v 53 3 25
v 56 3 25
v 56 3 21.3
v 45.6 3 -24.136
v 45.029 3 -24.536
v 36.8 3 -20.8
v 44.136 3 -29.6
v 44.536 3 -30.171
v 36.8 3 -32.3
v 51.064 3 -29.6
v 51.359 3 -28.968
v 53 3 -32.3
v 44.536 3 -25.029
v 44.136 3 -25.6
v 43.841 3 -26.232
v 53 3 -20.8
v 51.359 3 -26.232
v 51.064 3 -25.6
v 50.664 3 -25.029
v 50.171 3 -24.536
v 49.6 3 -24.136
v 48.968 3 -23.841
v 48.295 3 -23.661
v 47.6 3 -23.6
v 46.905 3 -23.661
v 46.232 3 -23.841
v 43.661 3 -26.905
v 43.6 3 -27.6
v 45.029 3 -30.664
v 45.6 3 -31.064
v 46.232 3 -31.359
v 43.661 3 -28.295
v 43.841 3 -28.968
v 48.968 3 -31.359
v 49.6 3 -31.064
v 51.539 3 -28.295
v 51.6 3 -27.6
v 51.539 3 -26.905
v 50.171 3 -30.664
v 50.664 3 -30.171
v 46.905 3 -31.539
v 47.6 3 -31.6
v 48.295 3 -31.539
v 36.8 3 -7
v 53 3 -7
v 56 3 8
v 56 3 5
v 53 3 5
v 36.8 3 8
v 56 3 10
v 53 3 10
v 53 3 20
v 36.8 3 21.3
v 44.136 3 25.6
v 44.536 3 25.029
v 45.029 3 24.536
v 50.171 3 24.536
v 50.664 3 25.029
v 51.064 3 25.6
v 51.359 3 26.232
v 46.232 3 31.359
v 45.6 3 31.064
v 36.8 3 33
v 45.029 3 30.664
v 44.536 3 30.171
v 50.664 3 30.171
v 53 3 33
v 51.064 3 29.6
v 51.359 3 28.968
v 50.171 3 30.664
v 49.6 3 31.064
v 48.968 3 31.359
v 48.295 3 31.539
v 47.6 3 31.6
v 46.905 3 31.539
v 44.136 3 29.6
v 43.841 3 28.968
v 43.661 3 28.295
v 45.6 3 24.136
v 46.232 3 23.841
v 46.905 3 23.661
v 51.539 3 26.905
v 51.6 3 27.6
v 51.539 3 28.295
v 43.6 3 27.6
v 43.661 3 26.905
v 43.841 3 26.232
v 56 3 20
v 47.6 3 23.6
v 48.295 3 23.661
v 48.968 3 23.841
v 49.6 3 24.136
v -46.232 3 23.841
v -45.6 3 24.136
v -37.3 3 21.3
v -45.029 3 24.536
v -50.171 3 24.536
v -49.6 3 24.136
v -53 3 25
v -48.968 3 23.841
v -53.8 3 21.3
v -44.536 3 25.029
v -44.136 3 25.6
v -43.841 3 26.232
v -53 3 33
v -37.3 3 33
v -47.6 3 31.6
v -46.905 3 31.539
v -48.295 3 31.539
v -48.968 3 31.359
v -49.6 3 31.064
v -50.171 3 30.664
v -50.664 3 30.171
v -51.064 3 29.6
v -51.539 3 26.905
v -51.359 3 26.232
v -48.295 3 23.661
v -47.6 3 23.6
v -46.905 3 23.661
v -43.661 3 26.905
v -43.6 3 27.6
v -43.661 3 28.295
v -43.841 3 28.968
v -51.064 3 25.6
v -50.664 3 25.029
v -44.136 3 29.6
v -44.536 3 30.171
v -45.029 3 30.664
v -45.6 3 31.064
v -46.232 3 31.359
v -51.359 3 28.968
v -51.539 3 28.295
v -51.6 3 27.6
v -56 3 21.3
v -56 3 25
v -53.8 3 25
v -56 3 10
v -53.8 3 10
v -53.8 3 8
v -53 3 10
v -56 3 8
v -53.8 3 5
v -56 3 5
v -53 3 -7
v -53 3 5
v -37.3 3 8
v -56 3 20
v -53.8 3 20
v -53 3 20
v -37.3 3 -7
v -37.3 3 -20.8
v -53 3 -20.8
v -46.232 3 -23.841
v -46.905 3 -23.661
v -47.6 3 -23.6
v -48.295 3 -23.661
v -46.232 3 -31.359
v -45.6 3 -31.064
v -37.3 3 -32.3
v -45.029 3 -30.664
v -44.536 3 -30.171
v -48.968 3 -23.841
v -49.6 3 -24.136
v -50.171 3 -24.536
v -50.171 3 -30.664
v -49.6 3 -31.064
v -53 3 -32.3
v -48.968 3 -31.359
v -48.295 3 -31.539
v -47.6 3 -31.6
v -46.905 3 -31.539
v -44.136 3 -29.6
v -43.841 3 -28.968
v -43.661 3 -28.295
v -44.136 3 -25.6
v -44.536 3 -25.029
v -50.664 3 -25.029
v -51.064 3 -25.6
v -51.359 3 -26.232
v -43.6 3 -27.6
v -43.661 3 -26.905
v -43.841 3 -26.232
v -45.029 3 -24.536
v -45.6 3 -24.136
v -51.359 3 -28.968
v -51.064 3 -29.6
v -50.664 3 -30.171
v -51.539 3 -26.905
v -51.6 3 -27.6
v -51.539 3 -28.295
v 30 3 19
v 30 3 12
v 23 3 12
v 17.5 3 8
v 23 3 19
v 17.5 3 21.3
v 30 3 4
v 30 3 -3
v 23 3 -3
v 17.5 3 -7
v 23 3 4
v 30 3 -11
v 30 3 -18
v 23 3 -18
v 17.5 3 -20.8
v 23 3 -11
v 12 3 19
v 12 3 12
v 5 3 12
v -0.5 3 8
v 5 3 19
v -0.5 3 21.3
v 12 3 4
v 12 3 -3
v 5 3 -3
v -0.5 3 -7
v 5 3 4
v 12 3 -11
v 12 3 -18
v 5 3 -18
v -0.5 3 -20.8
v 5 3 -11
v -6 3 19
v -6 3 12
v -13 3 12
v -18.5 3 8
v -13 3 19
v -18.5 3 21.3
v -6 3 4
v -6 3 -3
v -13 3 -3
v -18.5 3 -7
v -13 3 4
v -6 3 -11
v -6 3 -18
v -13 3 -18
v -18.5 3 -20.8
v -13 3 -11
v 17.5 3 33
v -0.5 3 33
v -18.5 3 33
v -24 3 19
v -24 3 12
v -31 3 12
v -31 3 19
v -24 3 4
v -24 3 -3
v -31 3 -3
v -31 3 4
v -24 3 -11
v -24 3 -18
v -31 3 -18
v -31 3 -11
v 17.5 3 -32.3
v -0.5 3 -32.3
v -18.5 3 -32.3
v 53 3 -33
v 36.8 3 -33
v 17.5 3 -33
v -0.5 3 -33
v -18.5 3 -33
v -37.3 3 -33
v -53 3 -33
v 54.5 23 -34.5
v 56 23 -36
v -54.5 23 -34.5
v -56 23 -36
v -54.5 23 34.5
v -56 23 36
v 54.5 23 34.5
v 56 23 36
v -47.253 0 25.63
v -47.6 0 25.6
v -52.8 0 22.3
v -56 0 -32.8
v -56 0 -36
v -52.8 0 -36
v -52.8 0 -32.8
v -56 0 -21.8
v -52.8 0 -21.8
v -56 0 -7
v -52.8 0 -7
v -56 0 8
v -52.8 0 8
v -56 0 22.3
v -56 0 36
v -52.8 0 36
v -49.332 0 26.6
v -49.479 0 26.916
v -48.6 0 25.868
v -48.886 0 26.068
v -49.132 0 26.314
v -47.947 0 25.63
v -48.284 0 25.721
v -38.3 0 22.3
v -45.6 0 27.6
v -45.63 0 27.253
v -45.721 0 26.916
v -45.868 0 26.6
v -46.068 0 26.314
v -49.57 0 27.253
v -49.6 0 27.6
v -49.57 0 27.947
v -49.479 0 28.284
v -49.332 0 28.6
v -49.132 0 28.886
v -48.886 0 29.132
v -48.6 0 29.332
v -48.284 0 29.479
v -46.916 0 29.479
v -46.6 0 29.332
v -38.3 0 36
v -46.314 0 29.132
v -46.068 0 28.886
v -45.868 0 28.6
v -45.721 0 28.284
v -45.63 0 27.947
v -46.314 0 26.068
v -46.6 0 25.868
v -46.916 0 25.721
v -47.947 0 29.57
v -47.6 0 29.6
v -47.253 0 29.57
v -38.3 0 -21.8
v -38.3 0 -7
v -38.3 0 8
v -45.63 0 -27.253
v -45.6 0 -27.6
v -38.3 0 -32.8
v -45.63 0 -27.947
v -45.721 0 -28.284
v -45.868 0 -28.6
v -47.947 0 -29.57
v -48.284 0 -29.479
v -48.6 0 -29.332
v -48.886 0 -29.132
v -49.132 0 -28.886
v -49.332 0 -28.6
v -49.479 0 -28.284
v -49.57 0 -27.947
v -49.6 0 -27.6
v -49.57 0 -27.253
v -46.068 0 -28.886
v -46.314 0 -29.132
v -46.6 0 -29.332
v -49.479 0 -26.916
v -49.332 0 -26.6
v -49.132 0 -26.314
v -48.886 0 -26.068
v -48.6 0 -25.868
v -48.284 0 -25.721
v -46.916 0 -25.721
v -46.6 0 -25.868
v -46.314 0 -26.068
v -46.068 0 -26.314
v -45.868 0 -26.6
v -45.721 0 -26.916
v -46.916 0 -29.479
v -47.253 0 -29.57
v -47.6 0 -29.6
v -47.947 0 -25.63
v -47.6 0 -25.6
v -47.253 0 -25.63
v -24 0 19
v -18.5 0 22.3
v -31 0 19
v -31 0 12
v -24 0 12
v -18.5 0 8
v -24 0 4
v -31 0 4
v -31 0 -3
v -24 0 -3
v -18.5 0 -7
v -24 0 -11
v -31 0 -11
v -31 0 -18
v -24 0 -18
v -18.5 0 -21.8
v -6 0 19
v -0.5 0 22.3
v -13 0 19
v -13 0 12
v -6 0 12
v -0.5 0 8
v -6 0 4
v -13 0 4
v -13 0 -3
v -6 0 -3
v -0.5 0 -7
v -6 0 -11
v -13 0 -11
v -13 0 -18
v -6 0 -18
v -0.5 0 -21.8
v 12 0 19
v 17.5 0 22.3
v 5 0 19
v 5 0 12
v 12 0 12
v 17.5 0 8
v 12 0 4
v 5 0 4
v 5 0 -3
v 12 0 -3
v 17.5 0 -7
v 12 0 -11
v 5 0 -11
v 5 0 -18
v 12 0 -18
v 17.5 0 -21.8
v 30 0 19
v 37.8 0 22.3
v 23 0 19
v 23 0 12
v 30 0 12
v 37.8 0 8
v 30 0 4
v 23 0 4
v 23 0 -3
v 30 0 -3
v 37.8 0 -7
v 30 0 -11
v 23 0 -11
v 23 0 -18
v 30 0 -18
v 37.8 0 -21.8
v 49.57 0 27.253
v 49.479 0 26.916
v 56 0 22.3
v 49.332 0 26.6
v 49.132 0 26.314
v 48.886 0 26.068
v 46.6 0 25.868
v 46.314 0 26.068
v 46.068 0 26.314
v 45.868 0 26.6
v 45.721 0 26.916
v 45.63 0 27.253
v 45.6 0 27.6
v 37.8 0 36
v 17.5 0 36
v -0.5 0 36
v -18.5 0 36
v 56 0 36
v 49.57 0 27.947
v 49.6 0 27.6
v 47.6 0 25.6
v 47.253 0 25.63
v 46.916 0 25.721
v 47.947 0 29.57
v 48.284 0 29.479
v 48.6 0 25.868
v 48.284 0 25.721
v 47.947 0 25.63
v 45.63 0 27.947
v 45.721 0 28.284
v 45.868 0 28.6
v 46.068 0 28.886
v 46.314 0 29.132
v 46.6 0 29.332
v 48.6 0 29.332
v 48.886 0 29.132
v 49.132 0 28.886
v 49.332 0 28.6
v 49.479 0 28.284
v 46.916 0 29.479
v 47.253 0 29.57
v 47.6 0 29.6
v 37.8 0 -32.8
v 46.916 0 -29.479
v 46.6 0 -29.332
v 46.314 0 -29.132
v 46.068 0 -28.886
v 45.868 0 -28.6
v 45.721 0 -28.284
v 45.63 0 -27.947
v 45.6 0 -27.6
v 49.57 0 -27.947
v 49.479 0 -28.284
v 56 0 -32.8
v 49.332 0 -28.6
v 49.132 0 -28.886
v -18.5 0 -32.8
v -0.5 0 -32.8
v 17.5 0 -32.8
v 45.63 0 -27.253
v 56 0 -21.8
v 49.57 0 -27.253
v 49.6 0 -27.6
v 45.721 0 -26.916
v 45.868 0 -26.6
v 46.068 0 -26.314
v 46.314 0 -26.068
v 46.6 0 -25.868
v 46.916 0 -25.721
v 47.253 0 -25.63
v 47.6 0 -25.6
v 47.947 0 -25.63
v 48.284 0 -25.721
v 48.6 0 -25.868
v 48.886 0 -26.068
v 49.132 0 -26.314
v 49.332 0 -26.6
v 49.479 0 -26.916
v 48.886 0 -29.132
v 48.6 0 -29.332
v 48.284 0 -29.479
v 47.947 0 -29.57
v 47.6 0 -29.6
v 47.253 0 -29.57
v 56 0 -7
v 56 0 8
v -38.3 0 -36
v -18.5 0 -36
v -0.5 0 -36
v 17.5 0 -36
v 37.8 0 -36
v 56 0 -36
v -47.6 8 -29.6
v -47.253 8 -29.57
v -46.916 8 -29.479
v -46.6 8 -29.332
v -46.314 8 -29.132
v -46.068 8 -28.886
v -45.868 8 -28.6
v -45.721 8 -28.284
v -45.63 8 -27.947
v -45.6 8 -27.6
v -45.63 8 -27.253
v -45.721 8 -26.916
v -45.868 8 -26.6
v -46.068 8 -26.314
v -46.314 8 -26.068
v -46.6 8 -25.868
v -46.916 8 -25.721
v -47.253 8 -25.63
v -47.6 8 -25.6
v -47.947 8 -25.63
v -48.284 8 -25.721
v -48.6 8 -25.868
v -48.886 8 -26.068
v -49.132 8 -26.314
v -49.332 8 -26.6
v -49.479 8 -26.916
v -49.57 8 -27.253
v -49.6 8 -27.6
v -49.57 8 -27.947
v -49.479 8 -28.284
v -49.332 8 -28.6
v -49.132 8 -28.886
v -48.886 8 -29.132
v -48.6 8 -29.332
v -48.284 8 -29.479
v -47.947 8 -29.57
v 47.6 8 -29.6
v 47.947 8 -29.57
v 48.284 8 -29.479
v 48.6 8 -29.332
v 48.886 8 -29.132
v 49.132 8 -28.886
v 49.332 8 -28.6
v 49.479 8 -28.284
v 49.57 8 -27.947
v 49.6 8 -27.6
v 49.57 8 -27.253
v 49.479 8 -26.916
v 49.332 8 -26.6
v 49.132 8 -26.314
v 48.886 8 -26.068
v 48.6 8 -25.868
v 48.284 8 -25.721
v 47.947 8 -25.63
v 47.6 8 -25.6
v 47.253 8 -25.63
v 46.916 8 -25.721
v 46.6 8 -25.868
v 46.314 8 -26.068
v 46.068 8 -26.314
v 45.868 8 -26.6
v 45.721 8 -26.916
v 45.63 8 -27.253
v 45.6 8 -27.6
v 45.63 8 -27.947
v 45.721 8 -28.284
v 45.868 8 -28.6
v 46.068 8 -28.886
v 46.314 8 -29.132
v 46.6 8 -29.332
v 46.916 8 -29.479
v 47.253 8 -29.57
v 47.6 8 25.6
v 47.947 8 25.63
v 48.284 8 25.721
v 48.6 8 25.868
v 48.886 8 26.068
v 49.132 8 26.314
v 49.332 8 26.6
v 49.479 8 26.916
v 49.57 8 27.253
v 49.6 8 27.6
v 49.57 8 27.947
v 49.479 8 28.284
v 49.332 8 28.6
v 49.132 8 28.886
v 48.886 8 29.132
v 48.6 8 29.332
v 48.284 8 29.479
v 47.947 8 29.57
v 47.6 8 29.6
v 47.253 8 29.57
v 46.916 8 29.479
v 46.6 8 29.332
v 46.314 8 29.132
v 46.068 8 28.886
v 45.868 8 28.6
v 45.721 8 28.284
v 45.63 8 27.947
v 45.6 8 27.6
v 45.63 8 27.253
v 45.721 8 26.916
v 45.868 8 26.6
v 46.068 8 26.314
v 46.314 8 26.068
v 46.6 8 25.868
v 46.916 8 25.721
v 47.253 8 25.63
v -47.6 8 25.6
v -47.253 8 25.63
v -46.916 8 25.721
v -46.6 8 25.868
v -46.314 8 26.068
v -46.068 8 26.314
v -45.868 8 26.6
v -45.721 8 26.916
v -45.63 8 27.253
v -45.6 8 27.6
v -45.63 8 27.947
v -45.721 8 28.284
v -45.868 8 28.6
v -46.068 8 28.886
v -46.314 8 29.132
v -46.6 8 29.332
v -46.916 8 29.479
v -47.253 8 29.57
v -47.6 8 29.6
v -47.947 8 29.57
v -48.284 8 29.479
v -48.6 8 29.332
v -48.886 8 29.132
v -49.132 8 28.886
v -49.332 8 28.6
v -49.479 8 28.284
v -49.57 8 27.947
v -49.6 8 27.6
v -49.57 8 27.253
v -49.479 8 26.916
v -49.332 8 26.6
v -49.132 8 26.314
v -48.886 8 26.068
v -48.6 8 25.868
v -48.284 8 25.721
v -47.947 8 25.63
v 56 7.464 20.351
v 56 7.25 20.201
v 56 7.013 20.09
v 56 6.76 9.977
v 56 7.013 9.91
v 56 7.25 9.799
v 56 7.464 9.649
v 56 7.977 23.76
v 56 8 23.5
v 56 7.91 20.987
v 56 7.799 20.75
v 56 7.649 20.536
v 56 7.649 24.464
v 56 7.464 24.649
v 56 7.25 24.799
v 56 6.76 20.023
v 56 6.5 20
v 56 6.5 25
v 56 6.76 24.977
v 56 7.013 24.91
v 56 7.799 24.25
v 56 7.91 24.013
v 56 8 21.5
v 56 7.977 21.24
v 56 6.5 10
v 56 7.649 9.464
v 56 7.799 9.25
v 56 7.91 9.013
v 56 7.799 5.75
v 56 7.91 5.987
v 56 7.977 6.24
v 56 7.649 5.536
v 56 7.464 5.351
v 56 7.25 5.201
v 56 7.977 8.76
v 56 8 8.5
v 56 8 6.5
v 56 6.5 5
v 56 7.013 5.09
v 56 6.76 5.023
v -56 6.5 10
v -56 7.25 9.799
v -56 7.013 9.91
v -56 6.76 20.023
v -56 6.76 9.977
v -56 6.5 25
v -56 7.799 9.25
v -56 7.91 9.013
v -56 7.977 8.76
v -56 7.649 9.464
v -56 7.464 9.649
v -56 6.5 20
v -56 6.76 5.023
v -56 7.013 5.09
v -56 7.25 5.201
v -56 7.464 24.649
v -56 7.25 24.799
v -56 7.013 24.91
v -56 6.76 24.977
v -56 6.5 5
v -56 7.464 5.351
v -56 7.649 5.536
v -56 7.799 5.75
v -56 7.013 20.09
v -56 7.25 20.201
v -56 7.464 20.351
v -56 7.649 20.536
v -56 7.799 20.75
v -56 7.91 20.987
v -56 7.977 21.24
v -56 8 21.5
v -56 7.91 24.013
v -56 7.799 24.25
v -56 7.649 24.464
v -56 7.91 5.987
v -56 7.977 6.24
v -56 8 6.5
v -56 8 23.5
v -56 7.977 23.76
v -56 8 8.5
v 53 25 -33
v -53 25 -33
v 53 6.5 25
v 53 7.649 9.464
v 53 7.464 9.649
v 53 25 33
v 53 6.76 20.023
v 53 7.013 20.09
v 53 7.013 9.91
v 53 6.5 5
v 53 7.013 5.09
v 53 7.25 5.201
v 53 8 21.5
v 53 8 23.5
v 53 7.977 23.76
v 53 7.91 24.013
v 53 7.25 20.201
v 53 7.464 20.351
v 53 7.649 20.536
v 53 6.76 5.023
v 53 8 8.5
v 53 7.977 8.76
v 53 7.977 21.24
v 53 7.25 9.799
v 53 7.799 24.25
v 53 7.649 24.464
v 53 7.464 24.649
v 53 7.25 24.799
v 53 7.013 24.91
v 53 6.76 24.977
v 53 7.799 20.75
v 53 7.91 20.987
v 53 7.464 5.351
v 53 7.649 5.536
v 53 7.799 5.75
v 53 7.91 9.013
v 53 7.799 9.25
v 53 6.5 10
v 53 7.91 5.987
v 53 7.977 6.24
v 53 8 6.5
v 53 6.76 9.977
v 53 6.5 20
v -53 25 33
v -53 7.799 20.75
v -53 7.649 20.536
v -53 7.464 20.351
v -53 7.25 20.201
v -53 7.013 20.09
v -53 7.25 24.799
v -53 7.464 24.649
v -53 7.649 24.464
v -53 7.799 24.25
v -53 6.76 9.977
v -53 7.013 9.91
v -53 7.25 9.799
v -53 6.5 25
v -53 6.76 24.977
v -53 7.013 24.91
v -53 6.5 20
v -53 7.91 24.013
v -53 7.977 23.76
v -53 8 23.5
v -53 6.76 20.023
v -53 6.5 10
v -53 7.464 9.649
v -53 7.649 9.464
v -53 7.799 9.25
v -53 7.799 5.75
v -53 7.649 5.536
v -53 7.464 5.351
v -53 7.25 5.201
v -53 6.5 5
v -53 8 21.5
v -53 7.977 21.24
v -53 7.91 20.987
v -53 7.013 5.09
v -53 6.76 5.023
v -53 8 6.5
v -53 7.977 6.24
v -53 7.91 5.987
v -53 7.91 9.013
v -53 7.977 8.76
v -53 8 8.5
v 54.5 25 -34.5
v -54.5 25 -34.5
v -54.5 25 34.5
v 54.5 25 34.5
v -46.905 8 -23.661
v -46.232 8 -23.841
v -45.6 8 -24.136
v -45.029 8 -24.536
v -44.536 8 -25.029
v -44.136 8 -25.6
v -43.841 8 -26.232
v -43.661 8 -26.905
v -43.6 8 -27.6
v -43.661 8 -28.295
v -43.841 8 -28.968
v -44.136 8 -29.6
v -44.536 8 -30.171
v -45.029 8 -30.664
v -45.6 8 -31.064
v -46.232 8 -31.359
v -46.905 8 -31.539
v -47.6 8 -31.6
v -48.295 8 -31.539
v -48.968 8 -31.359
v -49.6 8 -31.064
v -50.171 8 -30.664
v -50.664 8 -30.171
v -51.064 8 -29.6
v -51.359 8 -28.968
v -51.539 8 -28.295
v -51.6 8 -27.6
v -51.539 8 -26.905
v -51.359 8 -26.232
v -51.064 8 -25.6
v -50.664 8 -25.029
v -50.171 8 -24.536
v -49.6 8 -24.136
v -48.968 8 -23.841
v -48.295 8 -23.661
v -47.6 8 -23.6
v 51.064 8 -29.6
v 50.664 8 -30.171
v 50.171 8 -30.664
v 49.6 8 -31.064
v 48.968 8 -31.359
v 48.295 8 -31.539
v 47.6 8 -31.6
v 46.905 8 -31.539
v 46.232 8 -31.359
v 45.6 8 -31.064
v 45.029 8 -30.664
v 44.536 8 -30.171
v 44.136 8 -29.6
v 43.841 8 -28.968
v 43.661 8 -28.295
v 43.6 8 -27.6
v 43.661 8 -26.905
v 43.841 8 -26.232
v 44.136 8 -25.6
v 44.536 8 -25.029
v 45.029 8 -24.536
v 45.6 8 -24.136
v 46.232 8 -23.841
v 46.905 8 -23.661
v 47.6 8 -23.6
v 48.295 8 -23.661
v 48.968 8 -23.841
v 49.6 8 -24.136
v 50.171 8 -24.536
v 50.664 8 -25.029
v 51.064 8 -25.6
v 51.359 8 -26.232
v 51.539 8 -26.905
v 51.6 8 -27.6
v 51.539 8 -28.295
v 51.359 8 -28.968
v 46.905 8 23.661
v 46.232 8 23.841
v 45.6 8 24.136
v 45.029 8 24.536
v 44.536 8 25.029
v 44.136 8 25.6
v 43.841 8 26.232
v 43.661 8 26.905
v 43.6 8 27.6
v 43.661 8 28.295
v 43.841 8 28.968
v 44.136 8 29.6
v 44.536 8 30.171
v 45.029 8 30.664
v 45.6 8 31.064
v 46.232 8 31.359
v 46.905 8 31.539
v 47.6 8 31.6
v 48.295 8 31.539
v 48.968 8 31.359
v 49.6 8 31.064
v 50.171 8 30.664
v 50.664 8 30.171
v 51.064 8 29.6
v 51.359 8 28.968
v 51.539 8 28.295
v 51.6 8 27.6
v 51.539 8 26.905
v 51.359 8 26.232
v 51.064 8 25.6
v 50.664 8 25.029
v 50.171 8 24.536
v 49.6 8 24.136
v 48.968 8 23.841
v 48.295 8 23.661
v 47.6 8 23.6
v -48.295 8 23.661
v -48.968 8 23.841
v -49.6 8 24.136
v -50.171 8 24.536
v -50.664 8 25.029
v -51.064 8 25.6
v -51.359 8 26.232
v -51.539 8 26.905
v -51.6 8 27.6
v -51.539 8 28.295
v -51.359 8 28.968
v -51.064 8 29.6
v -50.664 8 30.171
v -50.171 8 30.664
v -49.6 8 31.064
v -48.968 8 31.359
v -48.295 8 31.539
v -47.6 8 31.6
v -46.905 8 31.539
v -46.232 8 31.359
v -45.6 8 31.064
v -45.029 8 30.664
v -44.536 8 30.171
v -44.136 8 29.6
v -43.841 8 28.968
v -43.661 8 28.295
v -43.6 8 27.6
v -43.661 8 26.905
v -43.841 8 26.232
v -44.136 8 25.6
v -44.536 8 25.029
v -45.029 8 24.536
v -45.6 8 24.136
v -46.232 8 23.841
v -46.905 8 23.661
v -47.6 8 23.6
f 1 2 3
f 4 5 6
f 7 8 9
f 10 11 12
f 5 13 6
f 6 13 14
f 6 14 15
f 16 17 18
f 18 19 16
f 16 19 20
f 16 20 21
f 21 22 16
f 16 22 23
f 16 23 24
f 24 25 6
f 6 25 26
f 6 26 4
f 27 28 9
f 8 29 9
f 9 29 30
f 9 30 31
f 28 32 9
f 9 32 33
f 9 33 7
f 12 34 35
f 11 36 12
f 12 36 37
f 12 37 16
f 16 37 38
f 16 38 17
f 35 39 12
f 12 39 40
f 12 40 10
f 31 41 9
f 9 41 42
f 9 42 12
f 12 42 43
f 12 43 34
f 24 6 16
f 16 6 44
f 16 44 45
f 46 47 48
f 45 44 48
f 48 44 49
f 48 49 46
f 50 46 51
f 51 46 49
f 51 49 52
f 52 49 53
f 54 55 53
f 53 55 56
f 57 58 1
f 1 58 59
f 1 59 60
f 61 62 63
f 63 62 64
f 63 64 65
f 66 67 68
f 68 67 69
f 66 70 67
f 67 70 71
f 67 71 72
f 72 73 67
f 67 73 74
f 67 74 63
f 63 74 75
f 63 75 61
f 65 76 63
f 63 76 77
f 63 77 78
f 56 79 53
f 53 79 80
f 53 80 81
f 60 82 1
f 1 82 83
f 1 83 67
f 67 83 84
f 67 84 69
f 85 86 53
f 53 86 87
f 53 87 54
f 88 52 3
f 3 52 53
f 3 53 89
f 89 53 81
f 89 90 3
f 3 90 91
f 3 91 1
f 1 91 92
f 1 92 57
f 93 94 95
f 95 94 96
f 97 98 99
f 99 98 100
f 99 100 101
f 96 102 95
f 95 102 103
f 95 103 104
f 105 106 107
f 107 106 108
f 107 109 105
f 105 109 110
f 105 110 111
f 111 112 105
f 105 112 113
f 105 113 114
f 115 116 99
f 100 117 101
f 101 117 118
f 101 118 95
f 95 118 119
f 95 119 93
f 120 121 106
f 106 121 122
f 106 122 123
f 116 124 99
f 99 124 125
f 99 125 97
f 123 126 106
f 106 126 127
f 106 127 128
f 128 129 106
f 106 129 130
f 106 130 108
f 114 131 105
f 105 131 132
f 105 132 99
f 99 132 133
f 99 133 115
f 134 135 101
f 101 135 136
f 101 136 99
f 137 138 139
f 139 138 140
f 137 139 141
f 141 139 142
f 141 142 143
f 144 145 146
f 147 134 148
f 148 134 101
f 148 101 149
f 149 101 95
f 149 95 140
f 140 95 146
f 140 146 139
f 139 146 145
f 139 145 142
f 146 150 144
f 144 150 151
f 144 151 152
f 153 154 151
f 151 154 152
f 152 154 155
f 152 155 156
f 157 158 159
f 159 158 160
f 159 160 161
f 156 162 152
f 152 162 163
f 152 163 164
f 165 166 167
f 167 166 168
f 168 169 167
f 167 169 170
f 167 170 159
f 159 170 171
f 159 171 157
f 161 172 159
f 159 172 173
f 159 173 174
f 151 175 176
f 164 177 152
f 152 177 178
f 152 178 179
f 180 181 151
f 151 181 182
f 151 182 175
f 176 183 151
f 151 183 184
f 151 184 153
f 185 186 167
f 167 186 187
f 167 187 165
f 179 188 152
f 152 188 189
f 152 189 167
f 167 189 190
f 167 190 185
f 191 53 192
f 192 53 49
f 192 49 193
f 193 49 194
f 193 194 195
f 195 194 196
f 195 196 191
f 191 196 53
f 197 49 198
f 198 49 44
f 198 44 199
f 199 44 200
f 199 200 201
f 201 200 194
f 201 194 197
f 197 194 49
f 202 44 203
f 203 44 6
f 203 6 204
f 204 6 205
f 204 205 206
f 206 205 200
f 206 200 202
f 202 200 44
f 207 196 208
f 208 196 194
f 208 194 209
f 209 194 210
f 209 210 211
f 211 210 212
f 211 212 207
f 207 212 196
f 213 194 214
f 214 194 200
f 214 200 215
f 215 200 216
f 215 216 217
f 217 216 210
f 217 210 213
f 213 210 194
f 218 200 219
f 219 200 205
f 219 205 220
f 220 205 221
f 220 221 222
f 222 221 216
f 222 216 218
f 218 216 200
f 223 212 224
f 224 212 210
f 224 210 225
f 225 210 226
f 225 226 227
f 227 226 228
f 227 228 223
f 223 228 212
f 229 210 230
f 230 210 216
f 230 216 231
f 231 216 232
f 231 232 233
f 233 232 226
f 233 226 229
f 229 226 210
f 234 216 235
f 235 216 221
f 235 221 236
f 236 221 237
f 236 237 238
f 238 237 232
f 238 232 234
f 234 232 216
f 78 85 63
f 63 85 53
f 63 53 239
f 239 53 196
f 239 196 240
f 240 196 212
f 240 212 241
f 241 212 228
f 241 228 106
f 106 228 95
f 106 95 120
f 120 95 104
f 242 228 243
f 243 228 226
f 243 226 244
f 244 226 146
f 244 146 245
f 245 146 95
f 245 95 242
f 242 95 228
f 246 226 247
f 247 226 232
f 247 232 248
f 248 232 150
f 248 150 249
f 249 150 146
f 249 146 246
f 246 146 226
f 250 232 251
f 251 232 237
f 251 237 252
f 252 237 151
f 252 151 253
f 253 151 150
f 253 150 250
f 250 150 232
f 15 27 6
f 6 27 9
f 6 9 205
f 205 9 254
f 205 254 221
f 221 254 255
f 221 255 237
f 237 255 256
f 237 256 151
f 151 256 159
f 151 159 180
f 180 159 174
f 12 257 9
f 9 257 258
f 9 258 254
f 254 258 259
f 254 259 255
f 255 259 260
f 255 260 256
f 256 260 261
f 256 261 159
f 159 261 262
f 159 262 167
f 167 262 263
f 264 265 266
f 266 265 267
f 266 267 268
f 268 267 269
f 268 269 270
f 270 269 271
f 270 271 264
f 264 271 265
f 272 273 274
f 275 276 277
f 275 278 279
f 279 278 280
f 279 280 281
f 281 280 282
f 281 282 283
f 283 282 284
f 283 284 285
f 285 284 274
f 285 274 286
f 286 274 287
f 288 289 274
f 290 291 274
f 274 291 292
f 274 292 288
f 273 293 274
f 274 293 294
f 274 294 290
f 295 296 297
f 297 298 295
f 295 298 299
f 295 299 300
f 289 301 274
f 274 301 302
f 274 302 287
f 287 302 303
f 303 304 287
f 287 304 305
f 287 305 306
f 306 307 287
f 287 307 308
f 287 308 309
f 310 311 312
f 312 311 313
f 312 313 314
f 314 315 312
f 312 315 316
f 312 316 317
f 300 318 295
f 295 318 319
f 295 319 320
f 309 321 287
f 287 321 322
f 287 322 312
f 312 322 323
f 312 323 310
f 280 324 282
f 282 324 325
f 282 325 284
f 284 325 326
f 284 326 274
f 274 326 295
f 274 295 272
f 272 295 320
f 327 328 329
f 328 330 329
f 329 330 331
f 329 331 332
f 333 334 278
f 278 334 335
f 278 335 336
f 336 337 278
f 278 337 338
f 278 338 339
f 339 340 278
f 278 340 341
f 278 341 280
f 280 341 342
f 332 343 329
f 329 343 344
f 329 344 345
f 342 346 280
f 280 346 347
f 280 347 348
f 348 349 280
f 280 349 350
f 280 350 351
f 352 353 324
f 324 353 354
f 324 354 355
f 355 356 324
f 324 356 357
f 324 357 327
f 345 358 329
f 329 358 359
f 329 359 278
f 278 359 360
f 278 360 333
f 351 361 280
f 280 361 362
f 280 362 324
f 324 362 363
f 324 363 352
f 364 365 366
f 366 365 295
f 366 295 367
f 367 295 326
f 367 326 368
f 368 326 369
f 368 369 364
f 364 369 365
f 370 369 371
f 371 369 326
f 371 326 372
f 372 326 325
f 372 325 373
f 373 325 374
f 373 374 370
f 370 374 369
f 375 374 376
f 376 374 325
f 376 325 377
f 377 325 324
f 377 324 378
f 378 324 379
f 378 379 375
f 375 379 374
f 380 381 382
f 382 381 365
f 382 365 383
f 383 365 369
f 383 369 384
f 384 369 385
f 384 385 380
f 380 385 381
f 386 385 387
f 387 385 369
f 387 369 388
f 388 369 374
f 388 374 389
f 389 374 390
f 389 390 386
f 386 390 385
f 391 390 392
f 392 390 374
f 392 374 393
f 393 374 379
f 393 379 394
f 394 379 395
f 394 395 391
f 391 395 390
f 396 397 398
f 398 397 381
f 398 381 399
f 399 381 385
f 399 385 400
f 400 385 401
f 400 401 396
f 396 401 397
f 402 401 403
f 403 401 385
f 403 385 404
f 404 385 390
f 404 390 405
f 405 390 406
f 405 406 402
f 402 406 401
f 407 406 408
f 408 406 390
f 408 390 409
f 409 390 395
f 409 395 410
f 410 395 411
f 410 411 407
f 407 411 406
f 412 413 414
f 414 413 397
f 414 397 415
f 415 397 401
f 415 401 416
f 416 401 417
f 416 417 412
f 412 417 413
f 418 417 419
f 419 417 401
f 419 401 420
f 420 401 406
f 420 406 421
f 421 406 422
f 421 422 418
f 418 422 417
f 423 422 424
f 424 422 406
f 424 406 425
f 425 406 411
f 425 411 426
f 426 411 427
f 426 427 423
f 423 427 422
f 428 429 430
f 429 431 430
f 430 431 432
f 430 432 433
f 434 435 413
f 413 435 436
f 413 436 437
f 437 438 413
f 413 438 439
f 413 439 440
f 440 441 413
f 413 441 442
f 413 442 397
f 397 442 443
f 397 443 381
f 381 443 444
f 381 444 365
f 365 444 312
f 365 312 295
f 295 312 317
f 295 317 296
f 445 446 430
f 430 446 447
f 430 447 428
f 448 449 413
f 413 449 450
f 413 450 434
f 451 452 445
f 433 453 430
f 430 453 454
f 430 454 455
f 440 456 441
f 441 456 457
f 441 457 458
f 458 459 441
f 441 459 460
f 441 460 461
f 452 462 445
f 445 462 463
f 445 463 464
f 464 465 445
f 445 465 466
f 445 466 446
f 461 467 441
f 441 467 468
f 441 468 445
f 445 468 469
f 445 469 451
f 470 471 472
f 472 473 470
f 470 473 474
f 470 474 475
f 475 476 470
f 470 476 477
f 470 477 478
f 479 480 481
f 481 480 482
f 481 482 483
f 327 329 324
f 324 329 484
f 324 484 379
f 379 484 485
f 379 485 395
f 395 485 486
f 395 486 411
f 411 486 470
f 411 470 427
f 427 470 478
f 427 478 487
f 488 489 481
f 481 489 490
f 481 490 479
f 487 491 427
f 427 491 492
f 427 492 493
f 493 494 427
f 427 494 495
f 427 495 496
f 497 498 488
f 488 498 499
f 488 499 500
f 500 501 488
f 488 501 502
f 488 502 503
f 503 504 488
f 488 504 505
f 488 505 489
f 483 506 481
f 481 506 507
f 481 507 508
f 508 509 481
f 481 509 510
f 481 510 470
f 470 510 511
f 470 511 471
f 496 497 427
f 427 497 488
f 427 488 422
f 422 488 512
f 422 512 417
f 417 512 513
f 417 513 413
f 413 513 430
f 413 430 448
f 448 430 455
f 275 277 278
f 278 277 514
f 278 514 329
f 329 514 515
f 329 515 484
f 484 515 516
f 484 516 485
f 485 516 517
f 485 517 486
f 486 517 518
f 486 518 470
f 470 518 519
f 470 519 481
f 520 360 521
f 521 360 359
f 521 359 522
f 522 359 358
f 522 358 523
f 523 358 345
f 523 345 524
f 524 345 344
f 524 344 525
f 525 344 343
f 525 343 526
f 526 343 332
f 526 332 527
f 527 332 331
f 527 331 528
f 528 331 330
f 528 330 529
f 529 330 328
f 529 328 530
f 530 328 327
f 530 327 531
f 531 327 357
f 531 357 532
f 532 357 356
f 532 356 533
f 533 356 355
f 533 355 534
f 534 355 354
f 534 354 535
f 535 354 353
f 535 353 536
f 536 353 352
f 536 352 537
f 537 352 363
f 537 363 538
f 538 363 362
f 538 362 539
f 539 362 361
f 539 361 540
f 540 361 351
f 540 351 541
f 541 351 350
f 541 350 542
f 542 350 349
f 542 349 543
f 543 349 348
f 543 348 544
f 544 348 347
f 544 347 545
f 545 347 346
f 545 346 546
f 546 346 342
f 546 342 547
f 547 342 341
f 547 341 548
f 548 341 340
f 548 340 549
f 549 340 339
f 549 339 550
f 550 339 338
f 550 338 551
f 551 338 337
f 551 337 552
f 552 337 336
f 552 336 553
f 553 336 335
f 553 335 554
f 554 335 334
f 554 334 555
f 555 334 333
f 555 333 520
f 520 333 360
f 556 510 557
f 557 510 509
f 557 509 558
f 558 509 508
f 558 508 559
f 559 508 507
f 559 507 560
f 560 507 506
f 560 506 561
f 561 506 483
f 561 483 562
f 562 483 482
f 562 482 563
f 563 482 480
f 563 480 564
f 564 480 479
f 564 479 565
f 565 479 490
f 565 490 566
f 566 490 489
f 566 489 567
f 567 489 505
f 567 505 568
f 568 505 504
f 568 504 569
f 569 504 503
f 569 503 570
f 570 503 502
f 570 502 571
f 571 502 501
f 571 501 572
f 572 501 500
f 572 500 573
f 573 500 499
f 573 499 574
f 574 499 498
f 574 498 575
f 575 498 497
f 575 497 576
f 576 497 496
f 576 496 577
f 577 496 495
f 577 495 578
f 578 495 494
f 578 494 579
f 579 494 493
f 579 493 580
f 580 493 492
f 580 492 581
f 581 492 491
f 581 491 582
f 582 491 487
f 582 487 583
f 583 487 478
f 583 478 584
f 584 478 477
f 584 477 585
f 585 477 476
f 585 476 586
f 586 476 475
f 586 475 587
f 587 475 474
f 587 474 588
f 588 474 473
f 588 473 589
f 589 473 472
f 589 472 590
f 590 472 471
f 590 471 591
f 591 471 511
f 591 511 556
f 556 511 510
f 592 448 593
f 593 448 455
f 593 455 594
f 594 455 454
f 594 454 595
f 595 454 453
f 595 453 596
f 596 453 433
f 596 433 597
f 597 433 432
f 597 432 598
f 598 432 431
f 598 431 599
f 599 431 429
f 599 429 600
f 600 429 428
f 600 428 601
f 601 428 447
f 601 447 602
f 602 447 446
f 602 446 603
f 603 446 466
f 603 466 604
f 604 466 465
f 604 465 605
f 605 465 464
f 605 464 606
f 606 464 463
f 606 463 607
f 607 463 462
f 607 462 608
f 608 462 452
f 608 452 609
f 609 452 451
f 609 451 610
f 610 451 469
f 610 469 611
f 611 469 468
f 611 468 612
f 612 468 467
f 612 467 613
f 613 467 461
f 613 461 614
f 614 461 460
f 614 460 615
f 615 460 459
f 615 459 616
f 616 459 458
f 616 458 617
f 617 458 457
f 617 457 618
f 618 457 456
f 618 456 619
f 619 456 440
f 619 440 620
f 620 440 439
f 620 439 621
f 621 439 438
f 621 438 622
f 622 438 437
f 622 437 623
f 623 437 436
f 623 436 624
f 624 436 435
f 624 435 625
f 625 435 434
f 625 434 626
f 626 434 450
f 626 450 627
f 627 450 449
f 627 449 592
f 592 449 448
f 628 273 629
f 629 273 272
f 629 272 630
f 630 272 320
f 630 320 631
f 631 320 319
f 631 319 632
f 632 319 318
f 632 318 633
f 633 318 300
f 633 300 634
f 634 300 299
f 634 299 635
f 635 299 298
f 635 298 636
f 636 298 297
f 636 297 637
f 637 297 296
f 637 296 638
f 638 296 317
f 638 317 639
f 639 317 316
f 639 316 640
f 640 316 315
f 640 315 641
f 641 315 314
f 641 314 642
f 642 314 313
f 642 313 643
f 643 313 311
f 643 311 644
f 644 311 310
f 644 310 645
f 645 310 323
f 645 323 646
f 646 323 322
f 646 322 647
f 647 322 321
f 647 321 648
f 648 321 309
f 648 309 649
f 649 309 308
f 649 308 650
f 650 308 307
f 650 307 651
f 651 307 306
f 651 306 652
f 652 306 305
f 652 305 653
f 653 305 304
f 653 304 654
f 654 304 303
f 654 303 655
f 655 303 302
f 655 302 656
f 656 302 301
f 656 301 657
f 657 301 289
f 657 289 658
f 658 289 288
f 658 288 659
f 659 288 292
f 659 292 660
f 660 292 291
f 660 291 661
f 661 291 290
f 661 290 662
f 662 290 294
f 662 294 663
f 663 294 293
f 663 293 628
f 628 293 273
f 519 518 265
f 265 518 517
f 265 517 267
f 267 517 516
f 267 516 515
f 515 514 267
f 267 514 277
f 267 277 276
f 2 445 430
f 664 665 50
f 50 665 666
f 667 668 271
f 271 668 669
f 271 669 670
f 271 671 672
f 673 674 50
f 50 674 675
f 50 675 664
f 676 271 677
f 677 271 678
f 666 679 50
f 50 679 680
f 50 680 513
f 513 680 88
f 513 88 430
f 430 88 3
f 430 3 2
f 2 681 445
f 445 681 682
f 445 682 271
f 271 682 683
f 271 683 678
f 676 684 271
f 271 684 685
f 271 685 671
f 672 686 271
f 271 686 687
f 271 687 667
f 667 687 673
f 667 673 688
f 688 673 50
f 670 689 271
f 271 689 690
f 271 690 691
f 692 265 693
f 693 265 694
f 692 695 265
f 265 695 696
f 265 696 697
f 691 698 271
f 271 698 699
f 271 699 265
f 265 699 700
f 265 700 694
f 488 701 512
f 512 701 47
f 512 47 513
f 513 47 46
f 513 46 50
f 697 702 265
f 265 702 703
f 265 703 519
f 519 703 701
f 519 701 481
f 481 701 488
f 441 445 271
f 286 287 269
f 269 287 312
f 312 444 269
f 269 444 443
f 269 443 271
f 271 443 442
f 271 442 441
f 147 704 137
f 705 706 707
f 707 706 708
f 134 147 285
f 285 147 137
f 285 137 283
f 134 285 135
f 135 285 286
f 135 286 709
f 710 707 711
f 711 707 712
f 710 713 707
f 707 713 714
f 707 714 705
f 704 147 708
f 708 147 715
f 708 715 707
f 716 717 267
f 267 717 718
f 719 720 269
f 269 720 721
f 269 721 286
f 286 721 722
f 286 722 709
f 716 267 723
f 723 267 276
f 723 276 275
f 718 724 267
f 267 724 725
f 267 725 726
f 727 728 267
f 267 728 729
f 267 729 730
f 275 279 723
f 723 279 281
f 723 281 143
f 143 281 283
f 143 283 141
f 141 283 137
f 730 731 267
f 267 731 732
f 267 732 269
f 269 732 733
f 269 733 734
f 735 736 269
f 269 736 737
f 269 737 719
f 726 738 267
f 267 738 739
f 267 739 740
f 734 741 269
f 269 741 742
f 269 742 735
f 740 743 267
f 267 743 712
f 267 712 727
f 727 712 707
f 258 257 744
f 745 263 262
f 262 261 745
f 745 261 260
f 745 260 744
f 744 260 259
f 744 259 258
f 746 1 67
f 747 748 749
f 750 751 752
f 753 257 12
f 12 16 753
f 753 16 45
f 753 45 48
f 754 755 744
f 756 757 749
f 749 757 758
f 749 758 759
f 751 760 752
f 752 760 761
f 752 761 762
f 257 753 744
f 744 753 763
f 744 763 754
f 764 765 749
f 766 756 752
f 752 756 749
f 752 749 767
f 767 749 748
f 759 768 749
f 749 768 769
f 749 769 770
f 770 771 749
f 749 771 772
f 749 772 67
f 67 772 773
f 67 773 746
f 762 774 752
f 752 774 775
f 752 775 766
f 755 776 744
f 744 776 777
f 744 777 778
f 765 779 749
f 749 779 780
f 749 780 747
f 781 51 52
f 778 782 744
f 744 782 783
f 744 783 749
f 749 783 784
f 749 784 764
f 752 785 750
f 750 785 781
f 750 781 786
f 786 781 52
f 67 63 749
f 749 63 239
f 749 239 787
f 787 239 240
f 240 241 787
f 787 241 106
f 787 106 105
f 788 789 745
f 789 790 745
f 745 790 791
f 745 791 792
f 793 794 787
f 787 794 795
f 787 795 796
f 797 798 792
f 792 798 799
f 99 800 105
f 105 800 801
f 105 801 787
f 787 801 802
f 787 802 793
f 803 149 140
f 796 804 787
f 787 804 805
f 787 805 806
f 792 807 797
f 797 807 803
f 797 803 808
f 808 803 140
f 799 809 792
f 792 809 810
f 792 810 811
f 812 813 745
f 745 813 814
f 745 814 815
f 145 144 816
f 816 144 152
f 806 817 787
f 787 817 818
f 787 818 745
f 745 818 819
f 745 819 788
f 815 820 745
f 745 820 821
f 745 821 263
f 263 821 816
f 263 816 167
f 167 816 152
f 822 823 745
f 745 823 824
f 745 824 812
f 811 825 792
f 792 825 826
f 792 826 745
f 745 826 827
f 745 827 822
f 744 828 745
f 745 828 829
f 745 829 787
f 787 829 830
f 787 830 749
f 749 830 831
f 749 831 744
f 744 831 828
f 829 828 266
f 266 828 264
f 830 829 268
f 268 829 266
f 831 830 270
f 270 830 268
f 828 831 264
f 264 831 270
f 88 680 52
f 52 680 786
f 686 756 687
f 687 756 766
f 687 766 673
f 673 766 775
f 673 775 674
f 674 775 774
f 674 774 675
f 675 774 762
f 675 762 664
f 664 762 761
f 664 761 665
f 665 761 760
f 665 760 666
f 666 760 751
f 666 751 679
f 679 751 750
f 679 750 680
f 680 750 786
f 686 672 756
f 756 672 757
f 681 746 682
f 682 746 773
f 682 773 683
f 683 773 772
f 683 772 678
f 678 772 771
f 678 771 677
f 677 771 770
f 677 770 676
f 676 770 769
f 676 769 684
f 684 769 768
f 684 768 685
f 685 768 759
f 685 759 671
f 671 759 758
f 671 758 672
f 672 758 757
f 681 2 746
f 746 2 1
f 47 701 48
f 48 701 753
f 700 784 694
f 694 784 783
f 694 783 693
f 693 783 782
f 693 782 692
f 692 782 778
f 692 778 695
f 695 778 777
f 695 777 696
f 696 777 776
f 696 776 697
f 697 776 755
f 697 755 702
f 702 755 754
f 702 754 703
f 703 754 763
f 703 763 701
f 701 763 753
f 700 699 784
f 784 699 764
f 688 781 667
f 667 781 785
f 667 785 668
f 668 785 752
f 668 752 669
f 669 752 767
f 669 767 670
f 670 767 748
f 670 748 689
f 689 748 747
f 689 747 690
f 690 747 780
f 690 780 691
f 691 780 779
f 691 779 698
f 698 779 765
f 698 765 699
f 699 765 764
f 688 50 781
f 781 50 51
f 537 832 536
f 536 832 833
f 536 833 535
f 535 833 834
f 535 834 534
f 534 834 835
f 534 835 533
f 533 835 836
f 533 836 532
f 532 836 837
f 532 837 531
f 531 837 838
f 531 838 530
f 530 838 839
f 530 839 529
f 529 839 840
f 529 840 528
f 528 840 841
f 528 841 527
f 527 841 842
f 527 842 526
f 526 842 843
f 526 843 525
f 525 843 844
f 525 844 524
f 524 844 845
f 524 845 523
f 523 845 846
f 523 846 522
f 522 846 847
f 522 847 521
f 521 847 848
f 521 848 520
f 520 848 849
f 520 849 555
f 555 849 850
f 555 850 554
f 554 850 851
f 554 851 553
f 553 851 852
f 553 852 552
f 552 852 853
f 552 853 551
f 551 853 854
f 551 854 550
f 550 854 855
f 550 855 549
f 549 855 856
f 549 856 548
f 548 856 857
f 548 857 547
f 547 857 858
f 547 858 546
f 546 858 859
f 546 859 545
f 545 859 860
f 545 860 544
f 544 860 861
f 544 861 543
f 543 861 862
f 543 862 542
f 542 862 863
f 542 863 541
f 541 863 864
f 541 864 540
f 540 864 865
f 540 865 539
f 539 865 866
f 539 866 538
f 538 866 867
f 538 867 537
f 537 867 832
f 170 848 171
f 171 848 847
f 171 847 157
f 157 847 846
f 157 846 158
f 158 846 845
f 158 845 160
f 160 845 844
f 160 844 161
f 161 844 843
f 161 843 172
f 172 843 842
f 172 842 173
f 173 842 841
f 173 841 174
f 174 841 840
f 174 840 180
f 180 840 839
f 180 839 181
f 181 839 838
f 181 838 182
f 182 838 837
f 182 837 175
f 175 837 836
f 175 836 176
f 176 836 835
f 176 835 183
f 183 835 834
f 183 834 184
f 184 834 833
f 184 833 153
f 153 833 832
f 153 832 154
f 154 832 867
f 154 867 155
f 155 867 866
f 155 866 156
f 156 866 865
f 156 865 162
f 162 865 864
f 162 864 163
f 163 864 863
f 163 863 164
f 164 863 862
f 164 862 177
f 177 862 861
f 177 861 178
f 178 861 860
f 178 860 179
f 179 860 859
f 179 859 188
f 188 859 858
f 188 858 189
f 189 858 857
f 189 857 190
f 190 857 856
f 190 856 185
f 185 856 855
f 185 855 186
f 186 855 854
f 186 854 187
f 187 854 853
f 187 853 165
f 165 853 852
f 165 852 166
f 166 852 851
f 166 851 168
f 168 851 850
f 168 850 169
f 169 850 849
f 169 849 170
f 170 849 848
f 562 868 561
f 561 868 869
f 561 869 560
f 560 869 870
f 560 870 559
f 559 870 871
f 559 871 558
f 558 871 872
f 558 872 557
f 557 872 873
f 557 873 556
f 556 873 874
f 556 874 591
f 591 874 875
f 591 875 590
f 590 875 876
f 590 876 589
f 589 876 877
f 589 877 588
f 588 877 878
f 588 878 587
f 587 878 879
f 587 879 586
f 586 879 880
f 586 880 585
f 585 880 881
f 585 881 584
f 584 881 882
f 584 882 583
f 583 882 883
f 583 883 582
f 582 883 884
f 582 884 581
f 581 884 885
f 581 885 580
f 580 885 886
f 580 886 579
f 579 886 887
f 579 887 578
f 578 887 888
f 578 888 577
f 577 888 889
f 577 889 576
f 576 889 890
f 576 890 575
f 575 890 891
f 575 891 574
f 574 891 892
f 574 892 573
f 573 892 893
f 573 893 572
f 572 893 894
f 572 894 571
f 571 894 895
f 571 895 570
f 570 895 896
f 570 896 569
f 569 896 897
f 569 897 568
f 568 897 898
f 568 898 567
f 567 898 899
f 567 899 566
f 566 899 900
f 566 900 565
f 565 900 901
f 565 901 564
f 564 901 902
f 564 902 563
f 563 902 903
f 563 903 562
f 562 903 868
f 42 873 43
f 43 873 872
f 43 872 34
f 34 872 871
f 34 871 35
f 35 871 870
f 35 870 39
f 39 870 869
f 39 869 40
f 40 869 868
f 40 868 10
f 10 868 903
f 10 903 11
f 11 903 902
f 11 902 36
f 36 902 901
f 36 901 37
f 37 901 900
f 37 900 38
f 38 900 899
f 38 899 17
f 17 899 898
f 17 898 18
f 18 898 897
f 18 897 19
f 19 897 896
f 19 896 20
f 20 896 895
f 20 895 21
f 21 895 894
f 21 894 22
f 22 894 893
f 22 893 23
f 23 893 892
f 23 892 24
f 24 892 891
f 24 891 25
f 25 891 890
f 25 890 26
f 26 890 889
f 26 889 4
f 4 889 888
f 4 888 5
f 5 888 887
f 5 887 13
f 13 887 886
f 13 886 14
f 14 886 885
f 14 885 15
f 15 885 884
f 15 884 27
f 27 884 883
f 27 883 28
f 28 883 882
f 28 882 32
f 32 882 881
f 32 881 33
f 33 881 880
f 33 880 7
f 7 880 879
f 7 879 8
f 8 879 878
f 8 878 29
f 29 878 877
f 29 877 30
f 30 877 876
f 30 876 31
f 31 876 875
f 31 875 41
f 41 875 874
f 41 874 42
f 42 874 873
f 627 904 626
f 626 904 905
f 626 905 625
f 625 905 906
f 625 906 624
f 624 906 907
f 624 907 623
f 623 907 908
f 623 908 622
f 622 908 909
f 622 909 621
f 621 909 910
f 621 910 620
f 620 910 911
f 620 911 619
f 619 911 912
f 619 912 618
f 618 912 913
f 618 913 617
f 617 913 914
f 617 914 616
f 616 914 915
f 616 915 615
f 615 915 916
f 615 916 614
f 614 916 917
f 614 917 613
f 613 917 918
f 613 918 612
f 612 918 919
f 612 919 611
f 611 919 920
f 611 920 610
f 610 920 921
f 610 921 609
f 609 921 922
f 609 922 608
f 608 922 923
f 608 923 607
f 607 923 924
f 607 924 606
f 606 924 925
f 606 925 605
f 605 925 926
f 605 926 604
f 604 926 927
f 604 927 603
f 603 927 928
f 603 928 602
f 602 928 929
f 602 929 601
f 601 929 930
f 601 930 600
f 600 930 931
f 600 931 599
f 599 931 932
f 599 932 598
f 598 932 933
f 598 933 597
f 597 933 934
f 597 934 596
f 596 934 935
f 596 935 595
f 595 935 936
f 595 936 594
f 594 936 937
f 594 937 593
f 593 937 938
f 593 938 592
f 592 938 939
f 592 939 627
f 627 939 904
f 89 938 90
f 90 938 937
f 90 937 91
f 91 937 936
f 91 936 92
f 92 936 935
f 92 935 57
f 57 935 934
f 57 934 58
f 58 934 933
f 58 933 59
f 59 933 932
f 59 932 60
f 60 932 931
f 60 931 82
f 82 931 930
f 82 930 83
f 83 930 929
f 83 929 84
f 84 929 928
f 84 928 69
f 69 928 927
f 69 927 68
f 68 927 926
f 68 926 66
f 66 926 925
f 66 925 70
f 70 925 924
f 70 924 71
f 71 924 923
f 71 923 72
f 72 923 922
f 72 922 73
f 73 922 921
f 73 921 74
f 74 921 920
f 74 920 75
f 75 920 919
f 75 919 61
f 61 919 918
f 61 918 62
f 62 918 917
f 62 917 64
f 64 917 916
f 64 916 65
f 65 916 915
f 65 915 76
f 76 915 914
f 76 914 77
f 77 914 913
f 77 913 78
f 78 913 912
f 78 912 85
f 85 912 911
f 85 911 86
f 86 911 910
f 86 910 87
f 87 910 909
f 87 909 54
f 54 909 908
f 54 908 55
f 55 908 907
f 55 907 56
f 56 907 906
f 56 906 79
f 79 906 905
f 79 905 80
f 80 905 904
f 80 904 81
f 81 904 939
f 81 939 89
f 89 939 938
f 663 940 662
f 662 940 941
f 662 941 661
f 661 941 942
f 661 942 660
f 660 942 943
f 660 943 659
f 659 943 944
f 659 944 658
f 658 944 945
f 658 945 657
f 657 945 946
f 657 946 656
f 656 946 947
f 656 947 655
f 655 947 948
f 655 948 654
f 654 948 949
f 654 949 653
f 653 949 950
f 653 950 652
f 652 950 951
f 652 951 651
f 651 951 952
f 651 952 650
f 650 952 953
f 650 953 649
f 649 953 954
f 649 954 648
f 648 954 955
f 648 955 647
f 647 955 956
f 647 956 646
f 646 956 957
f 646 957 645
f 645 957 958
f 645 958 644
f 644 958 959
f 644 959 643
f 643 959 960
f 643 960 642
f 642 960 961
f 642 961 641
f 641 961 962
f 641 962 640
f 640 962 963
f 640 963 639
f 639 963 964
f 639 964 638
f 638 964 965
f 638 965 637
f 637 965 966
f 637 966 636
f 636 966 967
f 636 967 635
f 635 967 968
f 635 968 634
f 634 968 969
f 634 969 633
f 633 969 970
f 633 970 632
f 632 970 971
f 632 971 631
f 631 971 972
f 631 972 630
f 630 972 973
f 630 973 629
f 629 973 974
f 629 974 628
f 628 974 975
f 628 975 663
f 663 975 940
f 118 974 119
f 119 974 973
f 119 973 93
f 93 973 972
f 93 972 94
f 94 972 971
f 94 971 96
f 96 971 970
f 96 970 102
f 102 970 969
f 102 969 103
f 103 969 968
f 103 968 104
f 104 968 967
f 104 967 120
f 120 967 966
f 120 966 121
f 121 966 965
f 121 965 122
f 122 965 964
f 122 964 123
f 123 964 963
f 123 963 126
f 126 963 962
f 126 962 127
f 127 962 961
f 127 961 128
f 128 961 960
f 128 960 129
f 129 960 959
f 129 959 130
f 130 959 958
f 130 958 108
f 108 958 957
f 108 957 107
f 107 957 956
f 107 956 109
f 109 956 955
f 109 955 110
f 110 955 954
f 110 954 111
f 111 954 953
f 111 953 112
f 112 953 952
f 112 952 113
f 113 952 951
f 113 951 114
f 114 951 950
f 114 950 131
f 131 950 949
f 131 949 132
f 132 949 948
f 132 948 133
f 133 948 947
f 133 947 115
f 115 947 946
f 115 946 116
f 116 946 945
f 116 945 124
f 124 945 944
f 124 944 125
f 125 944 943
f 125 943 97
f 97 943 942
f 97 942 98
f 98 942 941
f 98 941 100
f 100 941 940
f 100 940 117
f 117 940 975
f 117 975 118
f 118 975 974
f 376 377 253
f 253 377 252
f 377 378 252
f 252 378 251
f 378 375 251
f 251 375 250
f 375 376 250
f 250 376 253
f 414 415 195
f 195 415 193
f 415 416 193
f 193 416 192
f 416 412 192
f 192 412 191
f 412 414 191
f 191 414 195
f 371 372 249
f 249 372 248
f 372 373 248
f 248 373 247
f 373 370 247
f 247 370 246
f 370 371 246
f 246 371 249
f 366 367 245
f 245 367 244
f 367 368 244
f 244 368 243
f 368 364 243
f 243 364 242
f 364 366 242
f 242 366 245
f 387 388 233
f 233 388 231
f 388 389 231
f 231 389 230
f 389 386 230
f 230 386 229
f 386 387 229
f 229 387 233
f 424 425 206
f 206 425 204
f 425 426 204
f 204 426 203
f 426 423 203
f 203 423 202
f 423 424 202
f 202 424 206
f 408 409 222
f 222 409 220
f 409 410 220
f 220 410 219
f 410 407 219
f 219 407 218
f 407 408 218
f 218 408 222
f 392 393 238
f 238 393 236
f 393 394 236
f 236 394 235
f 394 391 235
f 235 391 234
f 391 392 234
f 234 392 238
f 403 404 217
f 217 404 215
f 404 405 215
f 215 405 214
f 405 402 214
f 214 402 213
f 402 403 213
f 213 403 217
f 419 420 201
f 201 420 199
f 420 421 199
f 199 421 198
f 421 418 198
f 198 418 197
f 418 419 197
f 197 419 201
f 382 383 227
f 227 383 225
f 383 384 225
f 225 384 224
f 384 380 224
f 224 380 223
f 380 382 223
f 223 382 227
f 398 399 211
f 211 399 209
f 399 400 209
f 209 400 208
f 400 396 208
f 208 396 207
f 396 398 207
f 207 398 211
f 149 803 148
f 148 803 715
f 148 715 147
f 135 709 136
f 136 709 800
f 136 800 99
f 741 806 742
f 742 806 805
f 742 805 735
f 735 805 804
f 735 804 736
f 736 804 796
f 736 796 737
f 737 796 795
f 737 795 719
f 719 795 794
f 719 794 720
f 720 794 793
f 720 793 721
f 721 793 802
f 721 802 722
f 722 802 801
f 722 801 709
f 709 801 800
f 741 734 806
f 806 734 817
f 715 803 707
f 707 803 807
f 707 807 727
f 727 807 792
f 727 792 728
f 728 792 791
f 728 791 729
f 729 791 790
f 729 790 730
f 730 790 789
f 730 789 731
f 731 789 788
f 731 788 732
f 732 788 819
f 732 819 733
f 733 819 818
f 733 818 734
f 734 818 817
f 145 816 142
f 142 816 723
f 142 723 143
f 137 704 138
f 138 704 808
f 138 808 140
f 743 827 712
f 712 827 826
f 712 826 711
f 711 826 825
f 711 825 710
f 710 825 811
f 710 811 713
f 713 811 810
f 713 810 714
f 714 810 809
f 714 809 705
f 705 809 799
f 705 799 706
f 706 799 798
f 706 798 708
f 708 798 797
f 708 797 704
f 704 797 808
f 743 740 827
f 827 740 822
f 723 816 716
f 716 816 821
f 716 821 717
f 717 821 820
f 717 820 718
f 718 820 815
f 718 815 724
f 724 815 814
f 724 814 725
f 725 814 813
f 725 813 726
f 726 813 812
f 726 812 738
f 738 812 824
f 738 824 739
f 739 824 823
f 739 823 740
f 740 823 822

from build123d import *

# Parameters (mm, degrees)
SKETCH1_W                = 106
SKETCH1_H                = 66
SKETCH1_R                = 2
BOSS_EXTRUDE1_DEPTH      = 3
SKETCH2_W                = 112
SKETCH2_H                = 72
SKETCH2_W_2              = 106
SKETCH2_H_2              = 66
BOSS_EXTRUDE2_DEPTH      = 20
BOSS_EXTRUDE2_DEPTH_BACK = 3
SKETCH4_W                = 109
SKETCH4_H                = 69
SKETCH4_W_2              = 106
SKETCH4_H_2              = 66
BOSS_EXTRUDE3_DEPTH      = 2
CUT_EXTRUDE1_DEPTH       = 4
SKETCH6_R                = 4
SKETCH6_R_2              = 2
BOSS_EXTRUDE4_DEPTH      = 5
SKETCH7_W                = 7
SKETCH7_H                = 7
CUT_EXTRUDE2_DEPTH       = 4


with BuildPart() as part:
    # Sketch1 → Boss-Extrude1 (new body)
    with BuildSketch(Plane(origin=(0, 0, 0), x_dir=(1, 0, 0), z_dir=(0, 1, 0))):
        Rectangle(SKETCH1_W, SKETCH1_H)
        with Locations((-47.6, 27.6)):
            Circle(SKETCH1_R, mode=Mode.SUBTRACT)
        with Locations((47.6, 27.6)):
            Circle(SKETCH1_R, mode=Mode.SUBTRACT)
        with Locations((47.6, -27.6)):
            Circle(SKETCH1_R, mode=Mode.SUBTRACT)
        with Locations((-47.6, -27.6)):
            Circle(SKETCH1_R, mode=Mode.SUBTRACT)
    extrude(amount=BOSS_EXTRUDE1_DEPTH)

    # Sketch2 → Boss-Extrude2 (add, two sides)
    with BuildSketch(Plane(origin=(0, 3, 0), x_dir=(1, 0, 0), z_dir=(0, 1, 0))) as boss_extrude2_sk:
        Rectangle(SKETCH2_W, SKETCH2_H)
        Rectangle(SKETCH2_W_2, SKETCH2_H_2, mode=Mode.SUBTRACT)
    extrude(amount=BOSS_EXTRUDE2_DEPTH)
    extrude(boss_extrude2_sk.sketch, amount=-BOSS_EXTRUDE2_DEPTH_BACK)

    # Sketch4 → Boss-Extrude3 (add)
    with BuildSketch(Plane(origin=(0, 23, 0), x_dir=(1, 0, 0), z_dir=(0, 1, 0))):
        Rectangle(SKETCH4_W, SKETCH4_H)
        Rectangle(SKETCH4_W_2, SKETCH4_H_2, mode=Mode.SUBTRACT)
    extrude(amount=BOSS_EXTRUDE3_DEPTH)

    # Sketch5 → Cut-Extrude1 (cut, through all)
    with BuildSketch(Plane.ZY.offset(-53)):
        with BuildLine():
            Line((5, 3), (10, 3))
            Line((10, 3), (10, 6.5))
            ThreePointArc((10, 6.5), (9.560660172, 7.560660172), (8.5, 8))
            Line((8.5, 8), (6.5, 8))
            ThreePointArc((6.5, 8), (5.439339828, 7.560660172), (5, 6.5))
            Line((5, 6.5), (5, 3))
        make_face()
        with BuildLine():
            Line((20, 3), (25, 3))
            Line((25, 3), (25, 6.5))
            ThreePointArc((25, 6.5), (24.560660172, 7.560660172), (23.5, 8))
            Line((23.5, 8), (21.5, 8))
            ThreePointArc((21.5, 8), (20.439339828, 7.560660172), (20, 6.5))
            Line((20, 6.5), (20, 3))
        make_face()
    cut_extrude1 = extrude(amount=-CUT_EXTRUDE1_DEPTH, mode=Mode.SUBTRACT)

    # Sketch6 → Boss-Extrude4 (add)
    with BuildSketch(Plane(origin=(0, 3, 0), x_dir=(1, 0, 0), z_dir=(0, 1, 0))):
        with Locations((-47.6, 27.6)):
            Circle(SKETCH6_R)
        with Locations((-47.6, 27.6)):
            Circle(SKETCH6_R_2, mode=Mode.SUBTRACT)
        with Locations((47.6, 27.6)):
            Circle(SKETCH6_R)
        with Locations((47.6, 27.6)):
            Circle(SKETCH6_R_2, mode=Mode.SUBTRACT)
        with Locations((47.6, -27.6)):
            Circle(SKETCH6_R)
        with Locations((47.6, -27.6)):
            Circle(SKETCH6_R_2, mode=Mode.SUBTRACT)
        with Locations((-47.6, -27.6)):
            Circle(SKETCH6_R)
        with Locations((-47.6, -27.6)):
            Circle(SKETCH6_R_2, mode=Mode.SUBTRACT)
    extrude(amount=BOSS_EXTRUDE4_DEPTH)

    # Sketch7 → Cut-Extrude2 (cut, through all)
    with BuildSketch(Plane(origin=(0, 3, 0), x_dir=(1, 0, 0), z_dir=(0, 1, 0))):
        with Locations((-9.5, 14.5)):
            Rectangle(SKETCH7_W, SKETCH7_H)
        with Locations((-27.5, 14.5)):
            Rectangle(SKETCH7_W, SKETCH7_H)
        with Locations((8.5, 14.5)):
            Rectangle(SKETCH7_W, SKETCH7_H)
        with Locations((26.5, 14.5)):
            Rectangle(SKETCH7_W, SKETCH7_H)
        with Locations((-9.5, -0.5)):
            Rectangle(SKETCH7_W, SKETCH7_H)
        with Locations((8.5, -0.5)):
            Rectangle(SKETCH7_W, SKETCH7_H)
        with Locations((26.5, -0.5)):
            Rectangle(SKETCH7_W, SKETCH7_H)
        with Locations((-9.5, -15.5)):
            Rectangle(SKETCH7_W, SKETCH7_H)
        with Locations((8.5, -15.5)):
            Rectangle(SKETCH7_W, SKETCH7_H)
        with Locations((26.5, -15.5)):
            Rectangle(SKETCH7_W, SKETCH7_H)
        with Locations((-27.5, -0.5)):
            Rectangle(SKETCH7_W, SKETCH7_H)
        with Locations((-27.5, -15.5)):
            Rectangle(SKETCH7_W, SKETCH7_H)
    extrude(amount=-CUT_EXTRUDE2_DEPTH, mode=Mode.SUBTRACT)

    # Mirror1: Cut-Extrude1 across plane
    add(cut_extrude1.mirror(Plane(origin=(0, 0, 0), x_dir=(0, 0, 1), z_dir=(1, 0, 0))), mode=Mode.SUBTRACT)


solid = part.part
